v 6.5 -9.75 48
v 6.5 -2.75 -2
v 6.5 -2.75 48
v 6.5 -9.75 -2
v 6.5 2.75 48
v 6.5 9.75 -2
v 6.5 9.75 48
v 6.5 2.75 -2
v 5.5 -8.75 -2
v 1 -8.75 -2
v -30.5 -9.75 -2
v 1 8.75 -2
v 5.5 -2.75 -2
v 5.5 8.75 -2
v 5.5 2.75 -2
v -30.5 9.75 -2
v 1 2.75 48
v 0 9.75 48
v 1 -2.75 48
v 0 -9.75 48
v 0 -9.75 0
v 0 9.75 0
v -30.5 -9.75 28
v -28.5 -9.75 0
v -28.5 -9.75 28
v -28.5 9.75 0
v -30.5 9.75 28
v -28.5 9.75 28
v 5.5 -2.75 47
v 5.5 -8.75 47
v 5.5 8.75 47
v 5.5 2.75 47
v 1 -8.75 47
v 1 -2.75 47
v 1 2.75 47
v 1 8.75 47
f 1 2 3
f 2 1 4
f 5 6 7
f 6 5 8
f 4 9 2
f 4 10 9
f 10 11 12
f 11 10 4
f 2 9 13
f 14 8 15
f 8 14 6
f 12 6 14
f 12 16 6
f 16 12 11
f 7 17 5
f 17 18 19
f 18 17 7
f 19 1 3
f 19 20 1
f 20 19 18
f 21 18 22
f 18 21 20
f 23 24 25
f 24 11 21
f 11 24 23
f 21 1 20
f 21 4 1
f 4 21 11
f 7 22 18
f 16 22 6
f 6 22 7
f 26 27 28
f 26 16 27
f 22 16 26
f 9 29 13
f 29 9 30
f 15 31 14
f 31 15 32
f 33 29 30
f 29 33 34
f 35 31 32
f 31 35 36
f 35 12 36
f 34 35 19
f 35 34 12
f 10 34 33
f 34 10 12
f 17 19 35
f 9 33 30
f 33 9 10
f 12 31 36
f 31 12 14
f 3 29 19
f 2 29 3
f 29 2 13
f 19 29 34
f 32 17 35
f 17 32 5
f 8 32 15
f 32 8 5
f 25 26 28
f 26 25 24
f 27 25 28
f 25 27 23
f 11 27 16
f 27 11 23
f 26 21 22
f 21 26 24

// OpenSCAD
socket_height=50;
hook_height=30;
socket_width=17.5;
socket_lenght=4.5;
top_lenght=28.5;

outer_width=socket_width + 2;

rotate([180,0,0]) union() {
    // hook
    translate([-top_lenght-1, 0, -hook_height/2 + 2]) 
     cube([2, outer_width, hook_height], center=true);
    
    // top part
    translate([-top_lenght, -outer_width/2, 0]) 
     cube([top_lenght, outer_width, 2]);
    
    // socket
    translate([(socket_lenght+2)/2, 0, -socket_height/2 + 2]) difference(){
      cube([socket_lenght+2, outer_width, socket_height], center=true);
      
      translate([0,0,1]) 
       cube([socket_lenght, socket_width, socket_height], center=true);
      
      translate([0.5,0,0]) 
       cube([socket_lenght+1, socket_lenght+1, socket_height], center=true);
    }
}
